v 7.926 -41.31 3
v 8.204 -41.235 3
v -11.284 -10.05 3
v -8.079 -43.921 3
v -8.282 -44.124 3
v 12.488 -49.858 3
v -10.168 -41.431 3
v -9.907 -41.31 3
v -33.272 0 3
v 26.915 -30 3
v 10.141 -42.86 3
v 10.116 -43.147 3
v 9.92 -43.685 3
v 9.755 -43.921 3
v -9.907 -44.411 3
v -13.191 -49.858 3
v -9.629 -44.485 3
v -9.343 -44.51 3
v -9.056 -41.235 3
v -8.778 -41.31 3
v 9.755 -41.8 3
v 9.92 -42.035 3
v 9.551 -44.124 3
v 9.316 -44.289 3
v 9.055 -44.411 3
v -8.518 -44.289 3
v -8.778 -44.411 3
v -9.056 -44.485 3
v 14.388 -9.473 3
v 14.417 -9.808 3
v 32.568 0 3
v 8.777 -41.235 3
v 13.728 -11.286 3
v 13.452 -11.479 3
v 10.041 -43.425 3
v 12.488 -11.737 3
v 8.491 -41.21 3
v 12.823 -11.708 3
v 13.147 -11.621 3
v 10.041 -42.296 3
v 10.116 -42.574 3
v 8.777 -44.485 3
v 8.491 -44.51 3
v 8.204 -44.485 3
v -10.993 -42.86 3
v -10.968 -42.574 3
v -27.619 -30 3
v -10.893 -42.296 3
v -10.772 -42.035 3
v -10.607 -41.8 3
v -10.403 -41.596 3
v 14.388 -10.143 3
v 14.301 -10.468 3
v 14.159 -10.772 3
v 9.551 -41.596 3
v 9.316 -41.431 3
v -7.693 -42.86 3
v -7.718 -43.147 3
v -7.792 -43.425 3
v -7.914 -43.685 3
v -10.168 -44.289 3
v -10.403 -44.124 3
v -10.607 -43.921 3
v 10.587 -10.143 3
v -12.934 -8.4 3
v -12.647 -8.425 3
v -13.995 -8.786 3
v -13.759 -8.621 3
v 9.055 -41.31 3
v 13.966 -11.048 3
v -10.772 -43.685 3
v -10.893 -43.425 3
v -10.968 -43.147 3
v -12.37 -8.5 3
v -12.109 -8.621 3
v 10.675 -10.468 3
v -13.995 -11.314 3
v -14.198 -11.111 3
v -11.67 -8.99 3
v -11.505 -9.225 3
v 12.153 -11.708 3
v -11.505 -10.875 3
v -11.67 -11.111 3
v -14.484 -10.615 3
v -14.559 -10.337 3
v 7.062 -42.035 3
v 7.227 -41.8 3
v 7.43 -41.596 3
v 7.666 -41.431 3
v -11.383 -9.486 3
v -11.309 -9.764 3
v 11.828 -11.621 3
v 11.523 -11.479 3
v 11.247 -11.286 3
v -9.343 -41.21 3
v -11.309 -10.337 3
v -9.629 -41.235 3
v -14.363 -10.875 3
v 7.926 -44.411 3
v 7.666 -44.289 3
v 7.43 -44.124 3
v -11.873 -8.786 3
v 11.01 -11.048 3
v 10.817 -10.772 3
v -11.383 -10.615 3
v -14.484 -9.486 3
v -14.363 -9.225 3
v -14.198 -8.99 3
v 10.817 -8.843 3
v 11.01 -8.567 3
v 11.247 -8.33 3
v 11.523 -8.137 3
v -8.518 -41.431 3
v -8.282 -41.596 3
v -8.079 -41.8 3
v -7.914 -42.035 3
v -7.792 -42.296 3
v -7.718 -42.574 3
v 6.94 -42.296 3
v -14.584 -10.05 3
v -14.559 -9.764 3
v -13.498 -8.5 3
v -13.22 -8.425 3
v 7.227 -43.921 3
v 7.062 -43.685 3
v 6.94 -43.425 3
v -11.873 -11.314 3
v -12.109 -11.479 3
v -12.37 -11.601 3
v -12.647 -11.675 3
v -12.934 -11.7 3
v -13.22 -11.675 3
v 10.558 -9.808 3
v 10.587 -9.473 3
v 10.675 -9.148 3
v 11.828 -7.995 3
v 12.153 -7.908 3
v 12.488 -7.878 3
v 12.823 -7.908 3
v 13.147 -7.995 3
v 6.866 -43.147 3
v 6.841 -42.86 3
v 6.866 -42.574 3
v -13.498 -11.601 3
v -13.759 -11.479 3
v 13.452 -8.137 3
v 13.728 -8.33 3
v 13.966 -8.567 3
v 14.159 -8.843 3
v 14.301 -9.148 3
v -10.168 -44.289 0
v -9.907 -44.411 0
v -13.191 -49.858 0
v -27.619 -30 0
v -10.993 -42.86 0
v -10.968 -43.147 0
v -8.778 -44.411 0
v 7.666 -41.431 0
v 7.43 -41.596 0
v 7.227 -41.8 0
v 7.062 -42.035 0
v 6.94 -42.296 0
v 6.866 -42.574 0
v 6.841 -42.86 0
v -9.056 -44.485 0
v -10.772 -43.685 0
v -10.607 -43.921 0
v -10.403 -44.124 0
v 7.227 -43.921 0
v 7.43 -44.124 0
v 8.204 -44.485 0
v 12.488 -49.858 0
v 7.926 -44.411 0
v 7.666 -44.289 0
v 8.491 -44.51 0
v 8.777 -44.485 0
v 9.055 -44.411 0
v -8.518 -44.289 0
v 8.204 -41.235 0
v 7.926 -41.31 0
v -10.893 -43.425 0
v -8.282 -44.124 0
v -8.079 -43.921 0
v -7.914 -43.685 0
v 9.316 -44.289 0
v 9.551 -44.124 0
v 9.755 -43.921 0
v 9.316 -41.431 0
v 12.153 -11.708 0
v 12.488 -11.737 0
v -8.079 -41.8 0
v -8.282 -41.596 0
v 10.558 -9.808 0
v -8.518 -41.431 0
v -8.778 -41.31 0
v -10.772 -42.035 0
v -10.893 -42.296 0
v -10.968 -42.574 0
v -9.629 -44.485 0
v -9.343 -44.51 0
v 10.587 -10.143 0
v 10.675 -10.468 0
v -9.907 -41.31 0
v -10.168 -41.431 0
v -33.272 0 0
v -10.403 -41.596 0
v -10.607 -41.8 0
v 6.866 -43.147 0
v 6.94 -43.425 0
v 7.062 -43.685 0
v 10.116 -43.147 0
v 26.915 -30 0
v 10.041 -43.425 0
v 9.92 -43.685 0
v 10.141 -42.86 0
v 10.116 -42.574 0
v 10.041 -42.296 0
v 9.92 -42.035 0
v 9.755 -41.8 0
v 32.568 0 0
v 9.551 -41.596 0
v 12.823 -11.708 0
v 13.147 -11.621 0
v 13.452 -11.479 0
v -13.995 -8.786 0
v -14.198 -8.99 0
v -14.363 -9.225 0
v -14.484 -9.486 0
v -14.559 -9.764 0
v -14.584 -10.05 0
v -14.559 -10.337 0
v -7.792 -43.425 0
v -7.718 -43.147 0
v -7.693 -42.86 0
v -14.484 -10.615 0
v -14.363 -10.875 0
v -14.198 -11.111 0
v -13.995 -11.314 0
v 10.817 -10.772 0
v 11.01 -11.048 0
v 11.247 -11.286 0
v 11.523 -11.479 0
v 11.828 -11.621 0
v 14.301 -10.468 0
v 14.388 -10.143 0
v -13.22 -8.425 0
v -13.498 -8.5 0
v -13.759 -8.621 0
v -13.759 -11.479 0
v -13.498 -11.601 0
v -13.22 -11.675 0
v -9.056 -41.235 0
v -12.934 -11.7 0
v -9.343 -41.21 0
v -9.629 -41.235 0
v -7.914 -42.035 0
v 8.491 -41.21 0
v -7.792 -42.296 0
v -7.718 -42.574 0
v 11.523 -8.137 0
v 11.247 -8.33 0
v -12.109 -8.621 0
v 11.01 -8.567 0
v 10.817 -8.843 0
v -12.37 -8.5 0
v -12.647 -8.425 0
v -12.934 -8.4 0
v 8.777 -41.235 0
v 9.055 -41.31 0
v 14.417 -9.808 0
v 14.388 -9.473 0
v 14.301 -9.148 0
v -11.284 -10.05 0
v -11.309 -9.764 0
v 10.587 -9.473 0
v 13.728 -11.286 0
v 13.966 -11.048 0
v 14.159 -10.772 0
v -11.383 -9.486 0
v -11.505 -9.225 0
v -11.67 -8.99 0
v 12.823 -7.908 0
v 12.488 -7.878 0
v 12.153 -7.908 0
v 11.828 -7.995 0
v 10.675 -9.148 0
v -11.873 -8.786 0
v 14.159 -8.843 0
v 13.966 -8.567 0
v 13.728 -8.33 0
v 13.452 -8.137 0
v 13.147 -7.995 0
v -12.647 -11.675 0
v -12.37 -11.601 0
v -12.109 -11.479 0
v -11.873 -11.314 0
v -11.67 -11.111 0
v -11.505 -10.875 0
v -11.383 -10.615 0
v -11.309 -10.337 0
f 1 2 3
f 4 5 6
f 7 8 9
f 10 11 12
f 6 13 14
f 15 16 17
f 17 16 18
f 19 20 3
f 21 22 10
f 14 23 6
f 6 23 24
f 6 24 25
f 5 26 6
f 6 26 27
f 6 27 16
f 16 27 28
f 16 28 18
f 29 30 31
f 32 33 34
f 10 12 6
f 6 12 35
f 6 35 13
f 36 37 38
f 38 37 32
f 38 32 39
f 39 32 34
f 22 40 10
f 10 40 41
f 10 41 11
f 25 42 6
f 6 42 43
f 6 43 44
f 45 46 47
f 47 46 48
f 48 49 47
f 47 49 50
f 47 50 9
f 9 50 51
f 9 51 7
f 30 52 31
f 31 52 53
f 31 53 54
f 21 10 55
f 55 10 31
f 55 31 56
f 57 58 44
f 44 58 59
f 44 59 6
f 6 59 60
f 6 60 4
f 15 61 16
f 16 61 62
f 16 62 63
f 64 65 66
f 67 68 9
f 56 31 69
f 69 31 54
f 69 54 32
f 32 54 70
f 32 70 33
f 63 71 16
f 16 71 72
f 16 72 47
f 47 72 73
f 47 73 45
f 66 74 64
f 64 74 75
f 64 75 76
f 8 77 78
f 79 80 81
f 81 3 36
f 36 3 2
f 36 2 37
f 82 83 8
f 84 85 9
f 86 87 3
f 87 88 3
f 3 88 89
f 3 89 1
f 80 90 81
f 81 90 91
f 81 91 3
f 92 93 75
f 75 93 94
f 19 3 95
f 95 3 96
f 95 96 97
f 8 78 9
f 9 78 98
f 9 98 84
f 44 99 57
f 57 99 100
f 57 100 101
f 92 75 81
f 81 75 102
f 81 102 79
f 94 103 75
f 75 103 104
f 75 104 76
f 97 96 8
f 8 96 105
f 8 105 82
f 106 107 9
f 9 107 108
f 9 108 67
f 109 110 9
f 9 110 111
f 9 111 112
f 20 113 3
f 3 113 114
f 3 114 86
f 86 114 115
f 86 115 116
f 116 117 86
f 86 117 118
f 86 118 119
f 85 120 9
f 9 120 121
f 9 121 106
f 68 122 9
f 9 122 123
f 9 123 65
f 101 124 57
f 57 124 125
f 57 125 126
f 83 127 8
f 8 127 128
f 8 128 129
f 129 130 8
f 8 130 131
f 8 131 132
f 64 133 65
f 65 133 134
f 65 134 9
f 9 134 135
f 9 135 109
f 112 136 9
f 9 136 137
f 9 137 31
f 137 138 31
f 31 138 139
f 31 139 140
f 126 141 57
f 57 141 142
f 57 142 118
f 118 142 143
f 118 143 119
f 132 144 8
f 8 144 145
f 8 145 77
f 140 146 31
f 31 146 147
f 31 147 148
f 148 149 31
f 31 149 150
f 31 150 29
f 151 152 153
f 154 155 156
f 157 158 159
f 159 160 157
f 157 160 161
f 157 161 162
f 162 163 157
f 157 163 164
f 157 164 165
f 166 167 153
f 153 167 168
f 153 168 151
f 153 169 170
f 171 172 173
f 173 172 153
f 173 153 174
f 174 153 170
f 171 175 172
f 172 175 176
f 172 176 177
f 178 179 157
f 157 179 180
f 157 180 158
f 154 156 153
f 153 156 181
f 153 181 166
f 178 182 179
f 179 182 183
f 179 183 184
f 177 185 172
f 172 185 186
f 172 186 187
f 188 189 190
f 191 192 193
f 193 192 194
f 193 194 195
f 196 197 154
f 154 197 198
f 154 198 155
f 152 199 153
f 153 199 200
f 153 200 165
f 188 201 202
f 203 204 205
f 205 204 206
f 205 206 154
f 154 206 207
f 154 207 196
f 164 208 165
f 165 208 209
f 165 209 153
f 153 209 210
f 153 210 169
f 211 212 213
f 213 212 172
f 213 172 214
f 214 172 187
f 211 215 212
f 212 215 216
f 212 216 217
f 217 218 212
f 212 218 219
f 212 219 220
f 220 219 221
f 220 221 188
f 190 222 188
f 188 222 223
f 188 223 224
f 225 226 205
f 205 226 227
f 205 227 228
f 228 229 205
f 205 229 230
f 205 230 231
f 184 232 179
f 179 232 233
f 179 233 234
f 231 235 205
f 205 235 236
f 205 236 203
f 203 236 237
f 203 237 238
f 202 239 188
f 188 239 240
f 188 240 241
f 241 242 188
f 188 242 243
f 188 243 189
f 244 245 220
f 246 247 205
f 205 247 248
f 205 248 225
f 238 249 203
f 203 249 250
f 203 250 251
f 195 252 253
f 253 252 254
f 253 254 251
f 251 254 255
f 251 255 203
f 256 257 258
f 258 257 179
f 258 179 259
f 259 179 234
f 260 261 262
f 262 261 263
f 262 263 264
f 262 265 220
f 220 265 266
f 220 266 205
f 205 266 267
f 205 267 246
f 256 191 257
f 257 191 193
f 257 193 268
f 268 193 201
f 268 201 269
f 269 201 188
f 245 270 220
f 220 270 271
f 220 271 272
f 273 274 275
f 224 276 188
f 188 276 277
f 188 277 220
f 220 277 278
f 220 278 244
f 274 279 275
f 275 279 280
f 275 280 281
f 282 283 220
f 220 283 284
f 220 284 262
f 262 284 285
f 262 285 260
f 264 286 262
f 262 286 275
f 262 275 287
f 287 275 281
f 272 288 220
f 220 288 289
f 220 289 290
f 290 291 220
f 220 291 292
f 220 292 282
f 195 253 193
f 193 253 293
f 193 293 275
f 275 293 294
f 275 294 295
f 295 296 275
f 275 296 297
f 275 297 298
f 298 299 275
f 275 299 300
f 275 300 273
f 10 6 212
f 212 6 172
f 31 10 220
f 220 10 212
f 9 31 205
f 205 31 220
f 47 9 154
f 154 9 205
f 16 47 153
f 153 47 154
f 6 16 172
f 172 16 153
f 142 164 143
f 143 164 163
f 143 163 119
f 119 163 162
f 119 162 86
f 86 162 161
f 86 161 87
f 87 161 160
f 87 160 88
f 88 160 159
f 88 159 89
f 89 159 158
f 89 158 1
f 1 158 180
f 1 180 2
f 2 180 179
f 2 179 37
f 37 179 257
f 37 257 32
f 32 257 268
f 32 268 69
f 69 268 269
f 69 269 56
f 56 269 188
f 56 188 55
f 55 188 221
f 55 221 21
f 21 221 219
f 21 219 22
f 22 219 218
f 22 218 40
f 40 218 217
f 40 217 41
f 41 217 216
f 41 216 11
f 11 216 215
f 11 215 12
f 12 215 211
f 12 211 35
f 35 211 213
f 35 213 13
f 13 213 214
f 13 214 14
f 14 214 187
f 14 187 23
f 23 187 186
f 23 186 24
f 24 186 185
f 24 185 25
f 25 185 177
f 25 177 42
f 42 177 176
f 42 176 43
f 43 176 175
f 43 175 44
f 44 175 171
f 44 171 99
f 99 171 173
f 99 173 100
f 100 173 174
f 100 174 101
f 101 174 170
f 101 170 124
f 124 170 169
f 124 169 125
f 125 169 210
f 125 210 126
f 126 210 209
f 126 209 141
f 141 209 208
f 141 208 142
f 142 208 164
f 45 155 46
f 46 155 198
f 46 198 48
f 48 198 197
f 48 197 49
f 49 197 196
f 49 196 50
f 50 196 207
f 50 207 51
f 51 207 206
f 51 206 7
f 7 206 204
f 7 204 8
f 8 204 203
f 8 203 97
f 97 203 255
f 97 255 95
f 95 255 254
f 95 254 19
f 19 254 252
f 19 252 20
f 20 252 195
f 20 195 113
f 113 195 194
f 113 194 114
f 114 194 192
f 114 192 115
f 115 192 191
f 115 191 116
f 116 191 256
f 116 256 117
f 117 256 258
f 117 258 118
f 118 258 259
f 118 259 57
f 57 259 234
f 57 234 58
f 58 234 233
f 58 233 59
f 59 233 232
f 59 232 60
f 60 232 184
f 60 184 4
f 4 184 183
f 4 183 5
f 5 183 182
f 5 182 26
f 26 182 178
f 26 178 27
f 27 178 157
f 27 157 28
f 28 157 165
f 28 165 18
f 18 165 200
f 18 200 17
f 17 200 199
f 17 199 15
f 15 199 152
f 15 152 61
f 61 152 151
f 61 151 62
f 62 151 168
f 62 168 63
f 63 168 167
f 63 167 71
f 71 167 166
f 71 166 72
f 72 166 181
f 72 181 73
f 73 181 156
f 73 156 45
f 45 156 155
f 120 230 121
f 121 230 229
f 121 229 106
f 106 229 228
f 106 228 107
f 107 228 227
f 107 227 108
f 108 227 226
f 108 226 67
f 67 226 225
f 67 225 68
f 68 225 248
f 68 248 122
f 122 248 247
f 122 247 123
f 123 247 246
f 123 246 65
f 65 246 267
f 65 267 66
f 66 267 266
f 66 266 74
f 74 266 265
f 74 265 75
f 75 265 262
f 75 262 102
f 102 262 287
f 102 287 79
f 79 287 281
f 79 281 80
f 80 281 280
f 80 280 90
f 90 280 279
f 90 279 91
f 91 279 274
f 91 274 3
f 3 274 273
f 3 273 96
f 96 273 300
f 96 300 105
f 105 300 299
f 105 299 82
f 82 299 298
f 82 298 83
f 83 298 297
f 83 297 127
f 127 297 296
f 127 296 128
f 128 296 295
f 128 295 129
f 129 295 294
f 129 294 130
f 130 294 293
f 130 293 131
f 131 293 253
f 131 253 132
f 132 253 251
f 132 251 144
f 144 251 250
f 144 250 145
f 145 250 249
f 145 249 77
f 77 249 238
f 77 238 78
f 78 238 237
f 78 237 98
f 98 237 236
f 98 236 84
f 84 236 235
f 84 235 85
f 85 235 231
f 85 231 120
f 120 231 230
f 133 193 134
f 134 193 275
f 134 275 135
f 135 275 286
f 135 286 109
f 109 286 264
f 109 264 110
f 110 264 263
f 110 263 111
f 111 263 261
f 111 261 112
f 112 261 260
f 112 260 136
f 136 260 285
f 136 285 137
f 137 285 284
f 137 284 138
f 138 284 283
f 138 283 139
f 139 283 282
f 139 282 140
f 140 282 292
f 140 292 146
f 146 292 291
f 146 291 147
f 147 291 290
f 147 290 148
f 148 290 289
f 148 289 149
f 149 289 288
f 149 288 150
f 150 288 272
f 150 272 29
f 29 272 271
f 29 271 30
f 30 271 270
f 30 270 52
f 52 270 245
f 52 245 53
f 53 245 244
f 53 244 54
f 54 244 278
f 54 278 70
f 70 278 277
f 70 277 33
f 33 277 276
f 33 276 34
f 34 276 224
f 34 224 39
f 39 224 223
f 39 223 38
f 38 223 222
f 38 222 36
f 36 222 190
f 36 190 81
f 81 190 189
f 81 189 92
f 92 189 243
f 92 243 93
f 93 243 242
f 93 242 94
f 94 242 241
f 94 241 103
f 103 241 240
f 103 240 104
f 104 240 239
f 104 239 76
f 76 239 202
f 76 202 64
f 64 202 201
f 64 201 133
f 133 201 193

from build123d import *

# Parameters (mm, degrees)
SKETCH2_R           = 1.65
SKETCH2_R_2         = 1.929414359
BOSS_EXTRUDE1_DEPTH = 3


with BuildPart() as part:
    # Sketch2 → Boss-Extrude1 (new body)
    with BuildSketch(Plane.XY):
        Polygon((32.568394145, 0), (-33.272239932, -0.000293688), (-27.618837956, -30), (-13.191429734, -49.85768247), (12.487583947, -49.85768247), (26.91499217, -30), align=None)
        with Locations((-9.342728507, -42.860194395)):
            Circle(SKETCH2_R, mode=Mode.SUBTRACT)
        with Locations((8.490760277, -42.860194395)):
            Circle(SKETCH2_R, mode=Mode.SUBTRACT)
        with Locations((-12.933964176, -10.050384435)):
            Circle(SKETCH2_R, mode=Mode.SUBTRACT)
        with Locations((12.487583947, -9.80768247)):
            Circle(SKETCH2_R_2, mode=Mode.SUBTRACT)
    extrude(amount=BOSS_EXTRUDE1_DEPTH)


solid = part.part
